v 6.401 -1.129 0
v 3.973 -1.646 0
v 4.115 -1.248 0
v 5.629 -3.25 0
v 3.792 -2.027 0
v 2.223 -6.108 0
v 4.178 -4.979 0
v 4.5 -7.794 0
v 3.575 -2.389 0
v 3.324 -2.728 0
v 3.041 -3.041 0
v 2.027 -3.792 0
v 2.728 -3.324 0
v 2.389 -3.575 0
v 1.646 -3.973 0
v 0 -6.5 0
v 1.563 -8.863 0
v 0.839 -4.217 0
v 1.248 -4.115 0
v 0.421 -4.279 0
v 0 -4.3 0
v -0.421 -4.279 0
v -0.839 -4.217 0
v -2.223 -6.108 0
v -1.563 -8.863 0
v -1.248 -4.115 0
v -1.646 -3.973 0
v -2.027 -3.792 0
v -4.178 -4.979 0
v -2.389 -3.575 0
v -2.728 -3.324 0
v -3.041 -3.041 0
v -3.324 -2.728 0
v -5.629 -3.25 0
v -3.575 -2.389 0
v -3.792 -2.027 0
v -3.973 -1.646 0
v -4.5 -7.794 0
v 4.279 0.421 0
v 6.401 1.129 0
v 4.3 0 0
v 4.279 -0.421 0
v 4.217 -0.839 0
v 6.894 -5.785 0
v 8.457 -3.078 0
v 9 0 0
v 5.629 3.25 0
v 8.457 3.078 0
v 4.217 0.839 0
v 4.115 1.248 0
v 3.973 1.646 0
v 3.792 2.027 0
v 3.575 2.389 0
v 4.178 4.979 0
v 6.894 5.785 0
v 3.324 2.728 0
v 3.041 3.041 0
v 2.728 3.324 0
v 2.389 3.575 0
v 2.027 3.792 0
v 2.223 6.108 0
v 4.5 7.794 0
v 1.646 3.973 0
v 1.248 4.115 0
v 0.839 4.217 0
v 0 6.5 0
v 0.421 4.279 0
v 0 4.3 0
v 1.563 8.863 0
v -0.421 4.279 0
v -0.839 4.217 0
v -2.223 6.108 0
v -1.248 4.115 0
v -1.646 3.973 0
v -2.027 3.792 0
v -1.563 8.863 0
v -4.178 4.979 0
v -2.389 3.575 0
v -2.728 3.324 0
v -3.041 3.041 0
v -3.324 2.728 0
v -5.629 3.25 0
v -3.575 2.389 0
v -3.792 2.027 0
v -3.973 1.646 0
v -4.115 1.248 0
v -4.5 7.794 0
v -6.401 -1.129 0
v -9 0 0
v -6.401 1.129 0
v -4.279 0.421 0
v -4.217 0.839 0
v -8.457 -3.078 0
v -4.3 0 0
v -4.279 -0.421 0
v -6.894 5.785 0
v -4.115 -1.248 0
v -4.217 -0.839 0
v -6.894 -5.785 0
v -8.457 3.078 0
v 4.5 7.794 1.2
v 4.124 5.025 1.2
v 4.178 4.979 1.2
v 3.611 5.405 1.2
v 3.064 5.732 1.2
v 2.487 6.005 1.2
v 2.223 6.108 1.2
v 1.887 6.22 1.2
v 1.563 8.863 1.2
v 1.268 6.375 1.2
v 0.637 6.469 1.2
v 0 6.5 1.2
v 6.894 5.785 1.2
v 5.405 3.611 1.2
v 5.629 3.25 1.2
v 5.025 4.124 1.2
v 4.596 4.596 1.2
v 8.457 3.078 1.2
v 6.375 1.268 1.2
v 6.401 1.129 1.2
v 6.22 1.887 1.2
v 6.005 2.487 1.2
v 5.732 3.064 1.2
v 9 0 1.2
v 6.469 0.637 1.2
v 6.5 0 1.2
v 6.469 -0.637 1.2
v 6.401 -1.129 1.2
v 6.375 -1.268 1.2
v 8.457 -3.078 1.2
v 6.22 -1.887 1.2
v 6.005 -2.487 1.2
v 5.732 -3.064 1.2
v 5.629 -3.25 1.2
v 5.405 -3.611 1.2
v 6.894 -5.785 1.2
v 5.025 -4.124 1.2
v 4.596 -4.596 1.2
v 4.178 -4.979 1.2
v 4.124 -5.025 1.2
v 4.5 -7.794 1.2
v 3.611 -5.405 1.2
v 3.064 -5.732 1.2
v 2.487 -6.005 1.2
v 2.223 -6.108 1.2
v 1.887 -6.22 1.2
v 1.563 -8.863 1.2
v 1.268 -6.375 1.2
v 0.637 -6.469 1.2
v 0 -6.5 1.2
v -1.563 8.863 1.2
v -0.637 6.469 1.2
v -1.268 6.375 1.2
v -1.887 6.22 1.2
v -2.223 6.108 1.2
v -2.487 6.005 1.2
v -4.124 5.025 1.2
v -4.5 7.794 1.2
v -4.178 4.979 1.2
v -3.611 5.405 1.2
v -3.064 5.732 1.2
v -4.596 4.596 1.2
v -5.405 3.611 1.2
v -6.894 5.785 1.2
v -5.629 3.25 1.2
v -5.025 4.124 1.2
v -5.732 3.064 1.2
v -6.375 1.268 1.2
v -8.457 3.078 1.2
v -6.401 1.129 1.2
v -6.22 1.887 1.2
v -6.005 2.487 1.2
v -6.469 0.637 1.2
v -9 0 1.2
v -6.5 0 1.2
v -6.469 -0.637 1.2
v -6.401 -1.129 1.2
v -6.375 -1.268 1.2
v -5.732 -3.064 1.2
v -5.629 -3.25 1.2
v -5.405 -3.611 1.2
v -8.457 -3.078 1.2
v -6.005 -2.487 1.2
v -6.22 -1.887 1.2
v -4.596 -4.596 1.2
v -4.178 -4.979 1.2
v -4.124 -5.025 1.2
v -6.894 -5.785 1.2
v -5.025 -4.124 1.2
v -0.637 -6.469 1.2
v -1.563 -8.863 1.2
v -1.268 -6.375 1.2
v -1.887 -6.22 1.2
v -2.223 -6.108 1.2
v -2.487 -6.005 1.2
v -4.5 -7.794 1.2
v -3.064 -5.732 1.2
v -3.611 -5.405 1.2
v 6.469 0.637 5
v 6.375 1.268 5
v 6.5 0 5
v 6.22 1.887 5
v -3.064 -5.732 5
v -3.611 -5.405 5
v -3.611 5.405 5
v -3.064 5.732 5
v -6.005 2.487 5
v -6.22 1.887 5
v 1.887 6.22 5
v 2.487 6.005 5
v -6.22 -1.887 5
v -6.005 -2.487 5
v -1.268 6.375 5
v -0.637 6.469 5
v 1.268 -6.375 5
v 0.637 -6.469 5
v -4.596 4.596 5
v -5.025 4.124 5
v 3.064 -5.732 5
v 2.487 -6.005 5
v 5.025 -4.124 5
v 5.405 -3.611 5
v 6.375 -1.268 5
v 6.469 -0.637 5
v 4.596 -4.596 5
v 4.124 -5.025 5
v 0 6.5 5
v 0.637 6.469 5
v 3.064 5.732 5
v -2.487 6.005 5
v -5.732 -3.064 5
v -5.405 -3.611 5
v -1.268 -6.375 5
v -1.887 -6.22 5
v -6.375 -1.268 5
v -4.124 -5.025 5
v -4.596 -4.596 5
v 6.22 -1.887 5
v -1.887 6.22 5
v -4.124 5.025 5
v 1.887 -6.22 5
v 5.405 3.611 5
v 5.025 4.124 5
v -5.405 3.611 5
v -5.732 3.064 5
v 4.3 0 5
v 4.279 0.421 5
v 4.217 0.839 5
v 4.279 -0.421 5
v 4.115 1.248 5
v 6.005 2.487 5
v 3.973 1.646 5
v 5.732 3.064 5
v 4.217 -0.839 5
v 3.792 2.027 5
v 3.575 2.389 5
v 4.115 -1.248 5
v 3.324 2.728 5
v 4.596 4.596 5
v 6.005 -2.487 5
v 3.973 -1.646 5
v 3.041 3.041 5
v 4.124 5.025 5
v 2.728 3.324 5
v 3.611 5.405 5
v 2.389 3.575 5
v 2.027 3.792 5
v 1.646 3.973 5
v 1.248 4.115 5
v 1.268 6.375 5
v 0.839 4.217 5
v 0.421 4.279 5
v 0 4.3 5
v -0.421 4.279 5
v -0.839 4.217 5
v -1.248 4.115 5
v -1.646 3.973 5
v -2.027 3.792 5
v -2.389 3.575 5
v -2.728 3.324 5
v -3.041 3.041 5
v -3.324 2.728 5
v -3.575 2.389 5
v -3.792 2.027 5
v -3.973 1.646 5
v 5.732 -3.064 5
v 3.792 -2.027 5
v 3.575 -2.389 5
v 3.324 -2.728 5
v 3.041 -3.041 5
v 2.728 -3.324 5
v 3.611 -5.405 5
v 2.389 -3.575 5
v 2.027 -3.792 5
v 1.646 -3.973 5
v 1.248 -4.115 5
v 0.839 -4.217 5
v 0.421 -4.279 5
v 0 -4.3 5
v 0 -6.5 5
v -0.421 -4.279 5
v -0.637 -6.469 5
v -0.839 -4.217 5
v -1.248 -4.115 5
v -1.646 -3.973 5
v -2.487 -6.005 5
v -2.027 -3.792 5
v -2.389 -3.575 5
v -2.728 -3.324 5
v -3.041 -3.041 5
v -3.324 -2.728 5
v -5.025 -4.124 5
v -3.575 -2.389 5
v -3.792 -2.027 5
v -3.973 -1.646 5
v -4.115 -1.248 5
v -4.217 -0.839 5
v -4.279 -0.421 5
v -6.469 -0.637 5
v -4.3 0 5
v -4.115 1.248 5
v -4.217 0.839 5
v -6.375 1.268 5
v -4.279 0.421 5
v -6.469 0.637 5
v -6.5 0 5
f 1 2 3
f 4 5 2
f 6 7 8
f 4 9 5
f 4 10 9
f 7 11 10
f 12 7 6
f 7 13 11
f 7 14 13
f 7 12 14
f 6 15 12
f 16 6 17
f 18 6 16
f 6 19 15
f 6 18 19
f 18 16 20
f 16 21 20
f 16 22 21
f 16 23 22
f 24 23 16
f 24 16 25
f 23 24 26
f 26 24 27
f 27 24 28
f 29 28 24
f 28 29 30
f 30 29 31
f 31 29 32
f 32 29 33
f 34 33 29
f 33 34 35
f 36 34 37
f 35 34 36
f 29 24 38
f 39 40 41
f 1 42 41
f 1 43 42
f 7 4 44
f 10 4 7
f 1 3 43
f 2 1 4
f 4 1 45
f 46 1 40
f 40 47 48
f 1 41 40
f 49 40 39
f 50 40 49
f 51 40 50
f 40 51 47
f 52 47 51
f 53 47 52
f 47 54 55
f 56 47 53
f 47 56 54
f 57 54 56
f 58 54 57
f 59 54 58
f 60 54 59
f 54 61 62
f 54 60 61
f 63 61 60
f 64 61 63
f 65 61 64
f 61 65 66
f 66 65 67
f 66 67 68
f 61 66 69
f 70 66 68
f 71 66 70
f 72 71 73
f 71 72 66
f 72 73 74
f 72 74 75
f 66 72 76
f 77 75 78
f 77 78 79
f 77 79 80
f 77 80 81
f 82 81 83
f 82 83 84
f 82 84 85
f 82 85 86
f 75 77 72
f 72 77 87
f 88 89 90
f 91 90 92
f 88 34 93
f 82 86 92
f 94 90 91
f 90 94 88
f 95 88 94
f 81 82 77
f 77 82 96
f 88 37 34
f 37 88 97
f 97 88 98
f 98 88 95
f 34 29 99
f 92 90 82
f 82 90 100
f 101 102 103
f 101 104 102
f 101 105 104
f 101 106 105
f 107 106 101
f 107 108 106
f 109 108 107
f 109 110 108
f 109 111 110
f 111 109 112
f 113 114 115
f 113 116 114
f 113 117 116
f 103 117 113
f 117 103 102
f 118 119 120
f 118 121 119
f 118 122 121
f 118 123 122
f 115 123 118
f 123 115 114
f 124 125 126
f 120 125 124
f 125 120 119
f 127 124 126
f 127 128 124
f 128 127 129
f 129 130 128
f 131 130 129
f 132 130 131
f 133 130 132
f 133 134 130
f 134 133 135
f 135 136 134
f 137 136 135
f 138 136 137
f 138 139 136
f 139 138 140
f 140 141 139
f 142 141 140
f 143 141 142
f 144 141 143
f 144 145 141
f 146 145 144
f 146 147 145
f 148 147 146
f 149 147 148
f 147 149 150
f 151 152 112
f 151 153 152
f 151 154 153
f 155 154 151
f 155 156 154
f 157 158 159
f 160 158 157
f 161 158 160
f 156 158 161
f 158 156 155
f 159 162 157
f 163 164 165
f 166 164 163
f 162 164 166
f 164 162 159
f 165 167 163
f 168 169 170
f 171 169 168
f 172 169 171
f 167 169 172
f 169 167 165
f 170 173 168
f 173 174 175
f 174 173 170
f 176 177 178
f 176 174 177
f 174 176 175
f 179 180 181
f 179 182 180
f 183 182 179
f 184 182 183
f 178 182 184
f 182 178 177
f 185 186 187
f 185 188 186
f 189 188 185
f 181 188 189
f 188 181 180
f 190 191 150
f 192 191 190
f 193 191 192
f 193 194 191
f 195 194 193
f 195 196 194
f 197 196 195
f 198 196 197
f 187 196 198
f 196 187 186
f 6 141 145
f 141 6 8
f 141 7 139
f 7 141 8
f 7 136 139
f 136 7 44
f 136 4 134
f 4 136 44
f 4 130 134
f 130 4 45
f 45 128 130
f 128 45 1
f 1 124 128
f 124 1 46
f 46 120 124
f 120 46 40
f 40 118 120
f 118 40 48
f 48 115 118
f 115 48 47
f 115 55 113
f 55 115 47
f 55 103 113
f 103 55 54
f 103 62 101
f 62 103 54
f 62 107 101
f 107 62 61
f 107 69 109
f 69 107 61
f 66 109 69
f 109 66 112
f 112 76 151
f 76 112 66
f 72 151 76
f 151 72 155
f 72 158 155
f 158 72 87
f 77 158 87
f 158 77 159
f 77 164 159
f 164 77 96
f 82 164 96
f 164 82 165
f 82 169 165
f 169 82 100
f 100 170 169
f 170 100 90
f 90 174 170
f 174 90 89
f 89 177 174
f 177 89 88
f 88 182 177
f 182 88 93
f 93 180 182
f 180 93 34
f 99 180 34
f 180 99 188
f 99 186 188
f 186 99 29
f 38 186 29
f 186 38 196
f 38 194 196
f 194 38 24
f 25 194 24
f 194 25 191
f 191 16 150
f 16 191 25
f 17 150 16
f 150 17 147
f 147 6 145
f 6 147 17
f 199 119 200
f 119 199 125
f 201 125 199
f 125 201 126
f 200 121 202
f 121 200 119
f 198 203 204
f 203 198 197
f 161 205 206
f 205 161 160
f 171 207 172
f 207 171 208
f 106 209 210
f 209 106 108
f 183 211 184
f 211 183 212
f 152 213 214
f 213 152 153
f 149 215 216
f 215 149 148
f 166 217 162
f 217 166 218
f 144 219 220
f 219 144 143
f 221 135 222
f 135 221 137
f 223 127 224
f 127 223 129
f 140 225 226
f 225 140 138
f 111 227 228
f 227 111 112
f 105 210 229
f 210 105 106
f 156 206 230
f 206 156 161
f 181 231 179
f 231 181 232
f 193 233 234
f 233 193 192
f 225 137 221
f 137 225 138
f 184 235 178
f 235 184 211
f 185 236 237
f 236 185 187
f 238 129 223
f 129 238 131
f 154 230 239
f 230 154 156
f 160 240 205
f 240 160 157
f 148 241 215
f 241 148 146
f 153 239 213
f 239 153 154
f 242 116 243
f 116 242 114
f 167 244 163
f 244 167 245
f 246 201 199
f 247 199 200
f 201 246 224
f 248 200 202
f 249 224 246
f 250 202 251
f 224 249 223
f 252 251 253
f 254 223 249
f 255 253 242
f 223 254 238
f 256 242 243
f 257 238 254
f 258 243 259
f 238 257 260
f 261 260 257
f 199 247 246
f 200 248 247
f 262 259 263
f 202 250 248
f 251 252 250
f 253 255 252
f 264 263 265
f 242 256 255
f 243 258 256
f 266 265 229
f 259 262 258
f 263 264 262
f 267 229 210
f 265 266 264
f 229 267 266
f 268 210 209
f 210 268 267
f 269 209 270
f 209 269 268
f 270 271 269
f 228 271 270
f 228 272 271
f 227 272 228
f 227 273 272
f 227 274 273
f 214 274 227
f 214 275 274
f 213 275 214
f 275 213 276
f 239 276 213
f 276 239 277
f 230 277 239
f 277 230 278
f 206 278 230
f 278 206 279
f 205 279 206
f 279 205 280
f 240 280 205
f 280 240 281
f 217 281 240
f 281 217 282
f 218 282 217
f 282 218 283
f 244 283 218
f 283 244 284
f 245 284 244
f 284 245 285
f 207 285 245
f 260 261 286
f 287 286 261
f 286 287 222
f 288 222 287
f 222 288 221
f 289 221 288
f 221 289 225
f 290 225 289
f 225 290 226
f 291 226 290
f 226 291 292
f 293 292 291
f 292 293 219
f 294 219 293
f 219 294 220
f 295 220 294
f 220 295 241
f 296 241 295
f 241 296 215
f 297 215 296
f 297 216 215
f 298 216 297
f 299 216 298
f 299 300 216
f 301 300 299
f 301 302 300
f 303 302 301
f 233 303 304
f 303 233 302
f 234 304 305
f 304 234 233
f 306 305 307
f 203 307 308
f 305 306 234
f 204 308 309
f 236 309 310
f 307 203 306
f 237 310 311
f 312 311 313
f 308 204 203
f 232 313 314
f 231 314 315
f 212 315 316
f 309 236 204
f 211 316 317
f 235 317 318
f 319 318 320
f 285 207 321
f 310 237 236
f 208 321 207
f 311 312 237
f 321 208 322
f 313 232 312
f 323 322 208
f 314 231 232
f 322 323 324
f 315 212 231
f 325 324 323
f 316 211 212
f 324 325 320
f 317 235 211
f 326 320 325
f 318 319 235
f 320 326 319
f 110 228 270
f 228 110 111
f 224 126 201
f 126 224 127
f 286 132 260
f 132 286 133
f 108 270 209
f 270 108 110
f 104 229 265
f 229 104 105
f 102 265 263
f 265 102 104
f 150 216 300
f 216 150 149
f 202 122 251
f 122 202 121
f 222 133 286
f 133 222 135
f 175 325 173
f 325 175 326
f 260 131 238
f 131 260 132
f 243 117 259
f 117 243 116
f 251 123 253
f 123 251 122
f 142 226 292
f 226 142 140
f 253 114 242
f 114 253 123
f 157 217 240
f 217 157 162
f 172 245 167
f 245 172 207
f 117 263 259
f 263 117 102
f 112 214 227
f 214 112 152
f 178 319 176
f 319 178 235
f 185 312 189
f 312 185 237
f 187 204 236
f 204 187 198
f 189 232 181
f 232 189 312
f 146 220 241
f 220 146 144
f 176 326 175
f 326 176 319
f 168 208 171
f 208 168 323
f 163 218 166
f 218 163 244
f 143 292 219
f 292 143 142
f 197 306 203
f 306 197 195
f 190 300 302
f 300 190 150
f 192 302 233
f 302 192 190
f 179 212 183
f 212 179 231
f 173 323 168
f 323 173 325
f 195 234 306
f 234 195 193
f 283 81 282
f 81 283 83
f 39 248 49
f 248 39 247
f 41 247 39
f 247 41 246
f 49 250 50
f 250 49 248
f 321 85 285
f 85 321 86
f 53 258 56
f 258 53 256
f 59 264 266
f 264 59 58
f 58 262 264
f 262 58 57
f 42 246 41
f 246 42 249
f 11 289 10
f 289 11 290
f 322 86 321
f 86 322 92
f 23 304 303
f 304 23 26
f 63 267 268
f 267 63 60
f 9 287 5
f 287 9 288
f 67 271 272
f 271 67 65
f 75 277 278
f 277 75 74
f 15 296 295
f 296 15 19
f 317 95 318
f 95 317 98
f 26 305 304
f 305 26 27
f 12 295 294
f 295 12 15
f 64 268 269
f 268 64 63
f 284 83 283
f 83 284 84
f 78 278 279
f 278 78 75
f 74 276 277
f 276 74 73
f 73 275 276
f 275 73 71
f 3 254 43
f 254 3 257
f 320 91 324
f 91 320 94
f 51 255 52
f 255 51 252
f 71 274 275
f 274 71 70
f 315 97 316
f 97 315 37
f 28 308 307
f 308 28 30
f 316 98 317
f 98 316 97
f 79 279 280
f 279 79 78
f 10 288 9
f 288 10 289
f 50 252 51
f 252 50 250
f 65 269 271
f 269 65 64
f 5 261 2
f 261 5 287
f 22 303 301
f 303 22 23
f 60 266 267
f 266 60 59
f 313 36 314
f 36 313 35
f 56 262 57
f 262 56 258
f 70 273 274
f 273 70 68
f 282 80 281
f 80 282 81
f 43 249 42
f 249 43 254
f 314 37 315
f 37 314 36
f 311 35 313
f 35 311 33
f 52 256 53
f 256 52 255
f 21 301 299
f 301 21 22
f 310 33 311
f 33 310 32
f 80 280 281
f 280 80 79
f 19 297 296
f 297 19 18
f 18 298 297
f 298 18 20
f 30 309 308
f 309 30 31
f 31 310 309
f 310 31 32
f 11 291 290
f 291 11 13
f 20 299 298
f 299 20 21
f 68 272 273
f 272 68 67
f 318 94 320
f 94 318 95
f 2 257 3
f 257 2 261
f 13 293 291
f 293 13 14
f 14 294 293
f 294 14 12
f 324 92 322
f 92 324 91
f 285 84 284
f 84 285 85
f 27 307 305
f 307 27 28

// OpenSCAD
// file: ../fj.scad
// FreeJet FJ-1 - shared dimensions and helpers.
// Coordinates (mm): X = carriage travel (left -> right, 0 = inner face of the left plate)
//                   Y = paper travel (paper moves toward +Y, 0 = printhead nozzle line)
//                   Z = up (0 = paper surface on the platen)
// Every part file includes this, so changing a number here moves everything.

$fn = 64;
e = 0.01;
tol = 0.25;          // clearance for printed fits

// ---- frame ----------------------------------------------------------------
inner_w   = 360;     // distance between the side plates
plate_t   = 8;
rod_d     = 8;       // all rods: 8 mm x 400 mm smooth rod
rod_len   = 400;
plate_y0  = -112;    // side plate outline in Y
plate_y1  = 88;
plate_z0  = -70;     // bottom of the feet
plate_z1  = 70;

// ---- carriage rods ------------------------------------------------------------
rail_y    = -42;
rail_lo_z = 14;
rail_hi_z = 50;
belt_y    = -60;     // axis line of the X motor pulley and idler (both vertical)
belt_z    = 32;      // height of the belt centre
belt_r    = 20*2/PI/2;          // 20T GT2 pitch radius
belt_front_y = belt_y + belt_r; // strand clamped to the carriage
belt_back_y  = belt_y - belt_r; // return strand, passes behind the carriage

// ---- paper path -------------------------------------------------------------
tire_od   = 22;      // drive and pinch roller outside diameter
in_y      = -76;     // input nip (rollers before the printhead)
out_y     = 52;      // output nip (star wheels after the printhead)
shaft_z   = -tire_od/2;
pinch_z   = tire_od/2;
star_od   = 18;
star_z    = star_od/2;
platen_rod_y = [-40, 26];
platen_rod_z = -13;
platen_y0 = -62;     // platen top surface extent
platen_y1 = 84;
sensor_y  = -54;     // paper lever switch
paper_x0  = 70;      // paper left edge (fixed guide)
paper_w   = 220;     // widest sheet
sensor_x  = paper_x0 + 14;   // paper lever switch X
tire_x    = [paper_x0+20, paper_x0+75, paper_x0+145, paper_x0+200];  // roller positions

// ---- feed drive ---------------------------------------------------------------
pulley_teeth = 76;   // printed GT2 pulleys on both roller shafts
feed_motor_y = -12;
feed_motor_z = -44;  // 400 mm closed GT2 loop around 76T + 76T + 20T

// ---- printhead / cartridge (MEASURE YOUR HP45 AND ADJUST) -----------------------
cart_w    = 24.5;    // across the carriage travel (X)
cart_d    = 50;      // front-to-back (Y)
cart_h    = 62;
nz_back   = 19;      // nozzle line distance from the contact (back) face
head_gap  = 1.2;     // nozzle plate height above the paper
pad_z0    = 3;       // contact pad footprint origin above the cartridge bottom
carr_w    = 54;      // carriage width along X
park_x    = 33;      // carriage centre X when parked (capped)

// ---- service station ------------------------------------------------------------
home_x    = 30;      // carriage centre X where the home switch trips (firmware X = 0)
sled_engage = 9;     // sled travel when parked (cap pressed on the nozzles)
cap_x     = park_x + sled_engage;   // cap centre with the sled retracted
wiper_x   = 56;
spit_x    = 62;      // firmware spit_x_um = (spit_x - home_x) * 1000

// ---- hardware -----------------------------------------------------------------
lm8uu_d = 15; lm8uu_l = 24;
b608_d = 22; b608_w = 7;
m3 = 3.2; m3_head = 6; m3_nut = 6.4;   // across flats + tolerance
m25 = 2.7;
nema_hole = 31; nema_body = 42.3; nema_boss = 22.5;

module rod_hole(l=40, d=rod_d+tol) { cylinder(d=d, h=l, center=true); }
module m3_hole(l=40) { cylinder(d=m3, h=l, center=true); }
module m3_nut_trap(h=3) { cylinder(d=m3_nut/cos(30), h=h, $fn=6); }
module rounded_box(size, r=3) {
    hull() for (x=[r, size[0]-r], y=[r, size[1]-r]) translate([x, y, 0]) cylinder(r=r, h=size[2]);
}
module nema17_holes(l=20, slot=0) {
    for (x=[-1,1], y=[-1,1]) hull() for (s=[-slot/2, slot/2])
        translate([x*nema_hole/2, y*nema_hole/2 + s, 0]) cylinder(d=m3, h=l, center=true);
    hull() for (s=[-slot/2, slot/2]) translate([0, s, 0]) cylinder(d=nema_boss+1, h=l, center=true);
}

// ---- carriage details ------------------------------------------------------------
carr_z0   = head_gap + 2.5;   // carriage walls stop above the nozzle plate
carr_z1   = 64;
pcb_w     = 44;  pcb_h = 46;  pcb_t = 1.6;   // printhead board
pcb_back  = 5;                 // component height behind the board
cart_rest_z = 18;              // height (above cartridge bottom) of the side rest tabs; 0 = none
// main file
// Star wheel for the output shaft (print 6, PETG, 0.12 mm layers). The points touch the
// freshly printed side of the paper, so they must be thin and sharp.
include <../fj.scad>
points = 18;
module star_wheel() difference() {
    union() {
        linear_extrude(1.2) polygon([for (i=[0:2*points-1]) let(r = i%2 ? star_od/2 - 2.5 : star_od/2, a = i*180/points) [r*cos(a), r*sin(a)]]);
        cylinder(d=rod_d + 5, h=5);
    }
    translate([0,0,-1]) cylinder(d=rod_d + 0.6, h=10);    // free spinning on the shaft
}
star_wheel();
